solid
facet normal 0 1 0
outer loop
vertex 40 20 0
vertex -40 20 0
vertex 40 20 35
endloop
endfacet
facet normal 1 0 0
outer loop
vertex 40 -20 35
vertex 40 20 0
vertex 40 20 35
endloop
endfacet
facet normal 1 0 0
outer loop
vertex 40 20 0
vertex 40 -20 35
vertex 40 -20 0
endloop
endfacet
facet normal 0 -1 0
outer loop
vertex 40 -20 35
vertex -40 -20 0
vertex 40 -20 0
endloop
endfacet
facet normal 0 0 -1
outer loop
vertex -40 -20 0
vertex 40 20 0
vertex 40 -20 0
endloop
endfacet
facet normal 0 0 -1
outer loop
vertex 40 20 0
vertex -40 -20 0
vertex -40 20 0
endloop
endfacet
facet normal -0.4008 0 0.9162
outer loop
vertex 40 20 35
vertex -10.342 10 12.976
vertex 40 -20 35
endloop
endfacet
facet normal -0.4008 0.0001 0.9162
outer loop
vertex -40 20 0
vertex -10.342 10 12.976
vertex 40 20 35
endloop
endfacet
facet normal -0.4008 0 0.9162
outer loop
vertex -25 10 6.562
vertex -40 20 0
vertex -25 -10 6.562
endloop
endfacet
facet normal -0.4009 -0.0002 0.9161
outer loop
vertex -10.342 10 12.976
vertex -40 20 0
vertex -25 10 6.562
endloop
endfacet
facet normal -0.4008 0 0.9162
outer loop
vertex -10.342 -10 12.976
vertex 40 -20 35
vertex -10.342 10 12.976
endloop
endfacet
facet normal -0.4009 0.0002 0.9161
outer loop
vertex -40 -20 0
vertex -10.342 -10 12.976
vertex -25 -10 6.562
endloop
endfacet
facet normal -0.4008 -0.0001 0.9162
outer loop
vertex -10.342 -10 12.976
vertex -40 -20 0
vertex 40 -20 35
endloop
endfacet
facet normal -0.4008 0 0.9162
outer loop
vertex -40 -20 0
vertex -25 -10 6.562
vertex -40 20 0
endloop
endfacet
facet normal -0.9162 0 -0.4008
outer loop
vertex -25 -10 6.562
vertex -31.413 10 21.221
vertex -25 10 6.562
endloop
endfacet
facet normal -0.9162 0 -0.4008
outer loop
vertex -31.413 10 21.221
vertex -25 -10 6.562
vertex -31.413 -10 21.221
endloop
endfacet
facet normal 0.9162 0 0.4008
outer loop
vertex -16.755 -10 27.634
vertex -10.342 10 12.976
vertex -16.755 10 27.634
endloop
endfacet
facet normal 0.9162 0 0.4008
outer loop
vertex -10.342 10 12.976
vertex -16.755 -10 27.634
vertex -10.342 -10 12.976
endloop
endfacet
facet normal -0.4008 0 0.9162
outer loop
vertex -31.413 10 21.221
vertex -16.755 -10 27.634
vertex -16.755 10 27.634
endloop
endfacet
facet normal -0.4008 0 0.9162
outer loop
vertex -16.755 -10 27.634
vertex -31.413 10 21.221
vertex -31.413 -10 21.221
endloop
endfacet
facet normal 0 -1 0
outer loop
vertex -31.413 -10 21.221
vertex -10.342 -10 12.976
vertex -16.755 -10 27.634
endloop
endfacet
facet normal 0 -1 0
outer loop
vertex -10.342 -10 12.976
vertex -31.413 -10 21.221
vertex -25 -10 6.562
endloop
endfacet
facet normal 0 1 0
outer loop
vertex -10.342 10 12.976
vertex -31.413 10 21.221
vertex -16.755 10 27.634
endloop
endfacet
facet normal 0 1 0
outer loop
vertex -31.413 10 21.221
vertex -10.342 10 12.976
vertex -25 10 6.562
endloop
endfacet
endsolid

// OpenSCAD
// file: _common.scad
// mechanism 共用設定 + 齒輪 module
$fn = 60;

// 簡化齒輪：N 個齒、節圓半徑 r、齒高 h、齒寬 w
module simple_gear(N = 16, r = 20, h = 4, thick = 6) {
  union() {
    // 主圓盤
    cylinder(h = thick, r = r, center = true);
    // 齒（梯形）
    for (i = [0:N-1]) {
      rotate([0, 0, i * 360 / N])
        translate([r, 0, 0])
          linear_extrude(height = thick, center = true)
            polygon([[0, -2.4], [h, -1.4], [h, 1.4], [0, 2.4]]);
    }
    // 中心凸軸
    cylinder(h = thick * 1.4, r = r * 0.18, center = true);
  }
}
// main file
// 斜面 Inclined Plane — 直角三角形拉伸 + 物體在斜面上
include <_common.scad>

// 斜面本體（直角三角形，立在 XZ 平面：底長 80、高 35，右高左低；深度 40）
// 舊版把三角形畫在 XY 水平面，斜面變成直立的牆，方塊也沒貼在斜面上
color([0.86, 0.15, 0.46])
  rotate([90, 0, 0]) linear_extrude(height = 40, center = true)
    polygon([[-40, 0], [40, 0], [40, 35]]);

// 物體（方塊貼在斜面上，位於斜面下半段）
// 斜面高度 z = 35·(x+40)/80；x = −25 時 z ≈ 6.6；繞 Y 轉 −atan(35/80) 讓方塊底面貼齊斜面
color([0.32, 0.08, 0.16])
  translate([-25, -10, 35 * 15 / 80])
    rotate([0, -atan(35/80), 0])
      cube([16, 20, 16]);
